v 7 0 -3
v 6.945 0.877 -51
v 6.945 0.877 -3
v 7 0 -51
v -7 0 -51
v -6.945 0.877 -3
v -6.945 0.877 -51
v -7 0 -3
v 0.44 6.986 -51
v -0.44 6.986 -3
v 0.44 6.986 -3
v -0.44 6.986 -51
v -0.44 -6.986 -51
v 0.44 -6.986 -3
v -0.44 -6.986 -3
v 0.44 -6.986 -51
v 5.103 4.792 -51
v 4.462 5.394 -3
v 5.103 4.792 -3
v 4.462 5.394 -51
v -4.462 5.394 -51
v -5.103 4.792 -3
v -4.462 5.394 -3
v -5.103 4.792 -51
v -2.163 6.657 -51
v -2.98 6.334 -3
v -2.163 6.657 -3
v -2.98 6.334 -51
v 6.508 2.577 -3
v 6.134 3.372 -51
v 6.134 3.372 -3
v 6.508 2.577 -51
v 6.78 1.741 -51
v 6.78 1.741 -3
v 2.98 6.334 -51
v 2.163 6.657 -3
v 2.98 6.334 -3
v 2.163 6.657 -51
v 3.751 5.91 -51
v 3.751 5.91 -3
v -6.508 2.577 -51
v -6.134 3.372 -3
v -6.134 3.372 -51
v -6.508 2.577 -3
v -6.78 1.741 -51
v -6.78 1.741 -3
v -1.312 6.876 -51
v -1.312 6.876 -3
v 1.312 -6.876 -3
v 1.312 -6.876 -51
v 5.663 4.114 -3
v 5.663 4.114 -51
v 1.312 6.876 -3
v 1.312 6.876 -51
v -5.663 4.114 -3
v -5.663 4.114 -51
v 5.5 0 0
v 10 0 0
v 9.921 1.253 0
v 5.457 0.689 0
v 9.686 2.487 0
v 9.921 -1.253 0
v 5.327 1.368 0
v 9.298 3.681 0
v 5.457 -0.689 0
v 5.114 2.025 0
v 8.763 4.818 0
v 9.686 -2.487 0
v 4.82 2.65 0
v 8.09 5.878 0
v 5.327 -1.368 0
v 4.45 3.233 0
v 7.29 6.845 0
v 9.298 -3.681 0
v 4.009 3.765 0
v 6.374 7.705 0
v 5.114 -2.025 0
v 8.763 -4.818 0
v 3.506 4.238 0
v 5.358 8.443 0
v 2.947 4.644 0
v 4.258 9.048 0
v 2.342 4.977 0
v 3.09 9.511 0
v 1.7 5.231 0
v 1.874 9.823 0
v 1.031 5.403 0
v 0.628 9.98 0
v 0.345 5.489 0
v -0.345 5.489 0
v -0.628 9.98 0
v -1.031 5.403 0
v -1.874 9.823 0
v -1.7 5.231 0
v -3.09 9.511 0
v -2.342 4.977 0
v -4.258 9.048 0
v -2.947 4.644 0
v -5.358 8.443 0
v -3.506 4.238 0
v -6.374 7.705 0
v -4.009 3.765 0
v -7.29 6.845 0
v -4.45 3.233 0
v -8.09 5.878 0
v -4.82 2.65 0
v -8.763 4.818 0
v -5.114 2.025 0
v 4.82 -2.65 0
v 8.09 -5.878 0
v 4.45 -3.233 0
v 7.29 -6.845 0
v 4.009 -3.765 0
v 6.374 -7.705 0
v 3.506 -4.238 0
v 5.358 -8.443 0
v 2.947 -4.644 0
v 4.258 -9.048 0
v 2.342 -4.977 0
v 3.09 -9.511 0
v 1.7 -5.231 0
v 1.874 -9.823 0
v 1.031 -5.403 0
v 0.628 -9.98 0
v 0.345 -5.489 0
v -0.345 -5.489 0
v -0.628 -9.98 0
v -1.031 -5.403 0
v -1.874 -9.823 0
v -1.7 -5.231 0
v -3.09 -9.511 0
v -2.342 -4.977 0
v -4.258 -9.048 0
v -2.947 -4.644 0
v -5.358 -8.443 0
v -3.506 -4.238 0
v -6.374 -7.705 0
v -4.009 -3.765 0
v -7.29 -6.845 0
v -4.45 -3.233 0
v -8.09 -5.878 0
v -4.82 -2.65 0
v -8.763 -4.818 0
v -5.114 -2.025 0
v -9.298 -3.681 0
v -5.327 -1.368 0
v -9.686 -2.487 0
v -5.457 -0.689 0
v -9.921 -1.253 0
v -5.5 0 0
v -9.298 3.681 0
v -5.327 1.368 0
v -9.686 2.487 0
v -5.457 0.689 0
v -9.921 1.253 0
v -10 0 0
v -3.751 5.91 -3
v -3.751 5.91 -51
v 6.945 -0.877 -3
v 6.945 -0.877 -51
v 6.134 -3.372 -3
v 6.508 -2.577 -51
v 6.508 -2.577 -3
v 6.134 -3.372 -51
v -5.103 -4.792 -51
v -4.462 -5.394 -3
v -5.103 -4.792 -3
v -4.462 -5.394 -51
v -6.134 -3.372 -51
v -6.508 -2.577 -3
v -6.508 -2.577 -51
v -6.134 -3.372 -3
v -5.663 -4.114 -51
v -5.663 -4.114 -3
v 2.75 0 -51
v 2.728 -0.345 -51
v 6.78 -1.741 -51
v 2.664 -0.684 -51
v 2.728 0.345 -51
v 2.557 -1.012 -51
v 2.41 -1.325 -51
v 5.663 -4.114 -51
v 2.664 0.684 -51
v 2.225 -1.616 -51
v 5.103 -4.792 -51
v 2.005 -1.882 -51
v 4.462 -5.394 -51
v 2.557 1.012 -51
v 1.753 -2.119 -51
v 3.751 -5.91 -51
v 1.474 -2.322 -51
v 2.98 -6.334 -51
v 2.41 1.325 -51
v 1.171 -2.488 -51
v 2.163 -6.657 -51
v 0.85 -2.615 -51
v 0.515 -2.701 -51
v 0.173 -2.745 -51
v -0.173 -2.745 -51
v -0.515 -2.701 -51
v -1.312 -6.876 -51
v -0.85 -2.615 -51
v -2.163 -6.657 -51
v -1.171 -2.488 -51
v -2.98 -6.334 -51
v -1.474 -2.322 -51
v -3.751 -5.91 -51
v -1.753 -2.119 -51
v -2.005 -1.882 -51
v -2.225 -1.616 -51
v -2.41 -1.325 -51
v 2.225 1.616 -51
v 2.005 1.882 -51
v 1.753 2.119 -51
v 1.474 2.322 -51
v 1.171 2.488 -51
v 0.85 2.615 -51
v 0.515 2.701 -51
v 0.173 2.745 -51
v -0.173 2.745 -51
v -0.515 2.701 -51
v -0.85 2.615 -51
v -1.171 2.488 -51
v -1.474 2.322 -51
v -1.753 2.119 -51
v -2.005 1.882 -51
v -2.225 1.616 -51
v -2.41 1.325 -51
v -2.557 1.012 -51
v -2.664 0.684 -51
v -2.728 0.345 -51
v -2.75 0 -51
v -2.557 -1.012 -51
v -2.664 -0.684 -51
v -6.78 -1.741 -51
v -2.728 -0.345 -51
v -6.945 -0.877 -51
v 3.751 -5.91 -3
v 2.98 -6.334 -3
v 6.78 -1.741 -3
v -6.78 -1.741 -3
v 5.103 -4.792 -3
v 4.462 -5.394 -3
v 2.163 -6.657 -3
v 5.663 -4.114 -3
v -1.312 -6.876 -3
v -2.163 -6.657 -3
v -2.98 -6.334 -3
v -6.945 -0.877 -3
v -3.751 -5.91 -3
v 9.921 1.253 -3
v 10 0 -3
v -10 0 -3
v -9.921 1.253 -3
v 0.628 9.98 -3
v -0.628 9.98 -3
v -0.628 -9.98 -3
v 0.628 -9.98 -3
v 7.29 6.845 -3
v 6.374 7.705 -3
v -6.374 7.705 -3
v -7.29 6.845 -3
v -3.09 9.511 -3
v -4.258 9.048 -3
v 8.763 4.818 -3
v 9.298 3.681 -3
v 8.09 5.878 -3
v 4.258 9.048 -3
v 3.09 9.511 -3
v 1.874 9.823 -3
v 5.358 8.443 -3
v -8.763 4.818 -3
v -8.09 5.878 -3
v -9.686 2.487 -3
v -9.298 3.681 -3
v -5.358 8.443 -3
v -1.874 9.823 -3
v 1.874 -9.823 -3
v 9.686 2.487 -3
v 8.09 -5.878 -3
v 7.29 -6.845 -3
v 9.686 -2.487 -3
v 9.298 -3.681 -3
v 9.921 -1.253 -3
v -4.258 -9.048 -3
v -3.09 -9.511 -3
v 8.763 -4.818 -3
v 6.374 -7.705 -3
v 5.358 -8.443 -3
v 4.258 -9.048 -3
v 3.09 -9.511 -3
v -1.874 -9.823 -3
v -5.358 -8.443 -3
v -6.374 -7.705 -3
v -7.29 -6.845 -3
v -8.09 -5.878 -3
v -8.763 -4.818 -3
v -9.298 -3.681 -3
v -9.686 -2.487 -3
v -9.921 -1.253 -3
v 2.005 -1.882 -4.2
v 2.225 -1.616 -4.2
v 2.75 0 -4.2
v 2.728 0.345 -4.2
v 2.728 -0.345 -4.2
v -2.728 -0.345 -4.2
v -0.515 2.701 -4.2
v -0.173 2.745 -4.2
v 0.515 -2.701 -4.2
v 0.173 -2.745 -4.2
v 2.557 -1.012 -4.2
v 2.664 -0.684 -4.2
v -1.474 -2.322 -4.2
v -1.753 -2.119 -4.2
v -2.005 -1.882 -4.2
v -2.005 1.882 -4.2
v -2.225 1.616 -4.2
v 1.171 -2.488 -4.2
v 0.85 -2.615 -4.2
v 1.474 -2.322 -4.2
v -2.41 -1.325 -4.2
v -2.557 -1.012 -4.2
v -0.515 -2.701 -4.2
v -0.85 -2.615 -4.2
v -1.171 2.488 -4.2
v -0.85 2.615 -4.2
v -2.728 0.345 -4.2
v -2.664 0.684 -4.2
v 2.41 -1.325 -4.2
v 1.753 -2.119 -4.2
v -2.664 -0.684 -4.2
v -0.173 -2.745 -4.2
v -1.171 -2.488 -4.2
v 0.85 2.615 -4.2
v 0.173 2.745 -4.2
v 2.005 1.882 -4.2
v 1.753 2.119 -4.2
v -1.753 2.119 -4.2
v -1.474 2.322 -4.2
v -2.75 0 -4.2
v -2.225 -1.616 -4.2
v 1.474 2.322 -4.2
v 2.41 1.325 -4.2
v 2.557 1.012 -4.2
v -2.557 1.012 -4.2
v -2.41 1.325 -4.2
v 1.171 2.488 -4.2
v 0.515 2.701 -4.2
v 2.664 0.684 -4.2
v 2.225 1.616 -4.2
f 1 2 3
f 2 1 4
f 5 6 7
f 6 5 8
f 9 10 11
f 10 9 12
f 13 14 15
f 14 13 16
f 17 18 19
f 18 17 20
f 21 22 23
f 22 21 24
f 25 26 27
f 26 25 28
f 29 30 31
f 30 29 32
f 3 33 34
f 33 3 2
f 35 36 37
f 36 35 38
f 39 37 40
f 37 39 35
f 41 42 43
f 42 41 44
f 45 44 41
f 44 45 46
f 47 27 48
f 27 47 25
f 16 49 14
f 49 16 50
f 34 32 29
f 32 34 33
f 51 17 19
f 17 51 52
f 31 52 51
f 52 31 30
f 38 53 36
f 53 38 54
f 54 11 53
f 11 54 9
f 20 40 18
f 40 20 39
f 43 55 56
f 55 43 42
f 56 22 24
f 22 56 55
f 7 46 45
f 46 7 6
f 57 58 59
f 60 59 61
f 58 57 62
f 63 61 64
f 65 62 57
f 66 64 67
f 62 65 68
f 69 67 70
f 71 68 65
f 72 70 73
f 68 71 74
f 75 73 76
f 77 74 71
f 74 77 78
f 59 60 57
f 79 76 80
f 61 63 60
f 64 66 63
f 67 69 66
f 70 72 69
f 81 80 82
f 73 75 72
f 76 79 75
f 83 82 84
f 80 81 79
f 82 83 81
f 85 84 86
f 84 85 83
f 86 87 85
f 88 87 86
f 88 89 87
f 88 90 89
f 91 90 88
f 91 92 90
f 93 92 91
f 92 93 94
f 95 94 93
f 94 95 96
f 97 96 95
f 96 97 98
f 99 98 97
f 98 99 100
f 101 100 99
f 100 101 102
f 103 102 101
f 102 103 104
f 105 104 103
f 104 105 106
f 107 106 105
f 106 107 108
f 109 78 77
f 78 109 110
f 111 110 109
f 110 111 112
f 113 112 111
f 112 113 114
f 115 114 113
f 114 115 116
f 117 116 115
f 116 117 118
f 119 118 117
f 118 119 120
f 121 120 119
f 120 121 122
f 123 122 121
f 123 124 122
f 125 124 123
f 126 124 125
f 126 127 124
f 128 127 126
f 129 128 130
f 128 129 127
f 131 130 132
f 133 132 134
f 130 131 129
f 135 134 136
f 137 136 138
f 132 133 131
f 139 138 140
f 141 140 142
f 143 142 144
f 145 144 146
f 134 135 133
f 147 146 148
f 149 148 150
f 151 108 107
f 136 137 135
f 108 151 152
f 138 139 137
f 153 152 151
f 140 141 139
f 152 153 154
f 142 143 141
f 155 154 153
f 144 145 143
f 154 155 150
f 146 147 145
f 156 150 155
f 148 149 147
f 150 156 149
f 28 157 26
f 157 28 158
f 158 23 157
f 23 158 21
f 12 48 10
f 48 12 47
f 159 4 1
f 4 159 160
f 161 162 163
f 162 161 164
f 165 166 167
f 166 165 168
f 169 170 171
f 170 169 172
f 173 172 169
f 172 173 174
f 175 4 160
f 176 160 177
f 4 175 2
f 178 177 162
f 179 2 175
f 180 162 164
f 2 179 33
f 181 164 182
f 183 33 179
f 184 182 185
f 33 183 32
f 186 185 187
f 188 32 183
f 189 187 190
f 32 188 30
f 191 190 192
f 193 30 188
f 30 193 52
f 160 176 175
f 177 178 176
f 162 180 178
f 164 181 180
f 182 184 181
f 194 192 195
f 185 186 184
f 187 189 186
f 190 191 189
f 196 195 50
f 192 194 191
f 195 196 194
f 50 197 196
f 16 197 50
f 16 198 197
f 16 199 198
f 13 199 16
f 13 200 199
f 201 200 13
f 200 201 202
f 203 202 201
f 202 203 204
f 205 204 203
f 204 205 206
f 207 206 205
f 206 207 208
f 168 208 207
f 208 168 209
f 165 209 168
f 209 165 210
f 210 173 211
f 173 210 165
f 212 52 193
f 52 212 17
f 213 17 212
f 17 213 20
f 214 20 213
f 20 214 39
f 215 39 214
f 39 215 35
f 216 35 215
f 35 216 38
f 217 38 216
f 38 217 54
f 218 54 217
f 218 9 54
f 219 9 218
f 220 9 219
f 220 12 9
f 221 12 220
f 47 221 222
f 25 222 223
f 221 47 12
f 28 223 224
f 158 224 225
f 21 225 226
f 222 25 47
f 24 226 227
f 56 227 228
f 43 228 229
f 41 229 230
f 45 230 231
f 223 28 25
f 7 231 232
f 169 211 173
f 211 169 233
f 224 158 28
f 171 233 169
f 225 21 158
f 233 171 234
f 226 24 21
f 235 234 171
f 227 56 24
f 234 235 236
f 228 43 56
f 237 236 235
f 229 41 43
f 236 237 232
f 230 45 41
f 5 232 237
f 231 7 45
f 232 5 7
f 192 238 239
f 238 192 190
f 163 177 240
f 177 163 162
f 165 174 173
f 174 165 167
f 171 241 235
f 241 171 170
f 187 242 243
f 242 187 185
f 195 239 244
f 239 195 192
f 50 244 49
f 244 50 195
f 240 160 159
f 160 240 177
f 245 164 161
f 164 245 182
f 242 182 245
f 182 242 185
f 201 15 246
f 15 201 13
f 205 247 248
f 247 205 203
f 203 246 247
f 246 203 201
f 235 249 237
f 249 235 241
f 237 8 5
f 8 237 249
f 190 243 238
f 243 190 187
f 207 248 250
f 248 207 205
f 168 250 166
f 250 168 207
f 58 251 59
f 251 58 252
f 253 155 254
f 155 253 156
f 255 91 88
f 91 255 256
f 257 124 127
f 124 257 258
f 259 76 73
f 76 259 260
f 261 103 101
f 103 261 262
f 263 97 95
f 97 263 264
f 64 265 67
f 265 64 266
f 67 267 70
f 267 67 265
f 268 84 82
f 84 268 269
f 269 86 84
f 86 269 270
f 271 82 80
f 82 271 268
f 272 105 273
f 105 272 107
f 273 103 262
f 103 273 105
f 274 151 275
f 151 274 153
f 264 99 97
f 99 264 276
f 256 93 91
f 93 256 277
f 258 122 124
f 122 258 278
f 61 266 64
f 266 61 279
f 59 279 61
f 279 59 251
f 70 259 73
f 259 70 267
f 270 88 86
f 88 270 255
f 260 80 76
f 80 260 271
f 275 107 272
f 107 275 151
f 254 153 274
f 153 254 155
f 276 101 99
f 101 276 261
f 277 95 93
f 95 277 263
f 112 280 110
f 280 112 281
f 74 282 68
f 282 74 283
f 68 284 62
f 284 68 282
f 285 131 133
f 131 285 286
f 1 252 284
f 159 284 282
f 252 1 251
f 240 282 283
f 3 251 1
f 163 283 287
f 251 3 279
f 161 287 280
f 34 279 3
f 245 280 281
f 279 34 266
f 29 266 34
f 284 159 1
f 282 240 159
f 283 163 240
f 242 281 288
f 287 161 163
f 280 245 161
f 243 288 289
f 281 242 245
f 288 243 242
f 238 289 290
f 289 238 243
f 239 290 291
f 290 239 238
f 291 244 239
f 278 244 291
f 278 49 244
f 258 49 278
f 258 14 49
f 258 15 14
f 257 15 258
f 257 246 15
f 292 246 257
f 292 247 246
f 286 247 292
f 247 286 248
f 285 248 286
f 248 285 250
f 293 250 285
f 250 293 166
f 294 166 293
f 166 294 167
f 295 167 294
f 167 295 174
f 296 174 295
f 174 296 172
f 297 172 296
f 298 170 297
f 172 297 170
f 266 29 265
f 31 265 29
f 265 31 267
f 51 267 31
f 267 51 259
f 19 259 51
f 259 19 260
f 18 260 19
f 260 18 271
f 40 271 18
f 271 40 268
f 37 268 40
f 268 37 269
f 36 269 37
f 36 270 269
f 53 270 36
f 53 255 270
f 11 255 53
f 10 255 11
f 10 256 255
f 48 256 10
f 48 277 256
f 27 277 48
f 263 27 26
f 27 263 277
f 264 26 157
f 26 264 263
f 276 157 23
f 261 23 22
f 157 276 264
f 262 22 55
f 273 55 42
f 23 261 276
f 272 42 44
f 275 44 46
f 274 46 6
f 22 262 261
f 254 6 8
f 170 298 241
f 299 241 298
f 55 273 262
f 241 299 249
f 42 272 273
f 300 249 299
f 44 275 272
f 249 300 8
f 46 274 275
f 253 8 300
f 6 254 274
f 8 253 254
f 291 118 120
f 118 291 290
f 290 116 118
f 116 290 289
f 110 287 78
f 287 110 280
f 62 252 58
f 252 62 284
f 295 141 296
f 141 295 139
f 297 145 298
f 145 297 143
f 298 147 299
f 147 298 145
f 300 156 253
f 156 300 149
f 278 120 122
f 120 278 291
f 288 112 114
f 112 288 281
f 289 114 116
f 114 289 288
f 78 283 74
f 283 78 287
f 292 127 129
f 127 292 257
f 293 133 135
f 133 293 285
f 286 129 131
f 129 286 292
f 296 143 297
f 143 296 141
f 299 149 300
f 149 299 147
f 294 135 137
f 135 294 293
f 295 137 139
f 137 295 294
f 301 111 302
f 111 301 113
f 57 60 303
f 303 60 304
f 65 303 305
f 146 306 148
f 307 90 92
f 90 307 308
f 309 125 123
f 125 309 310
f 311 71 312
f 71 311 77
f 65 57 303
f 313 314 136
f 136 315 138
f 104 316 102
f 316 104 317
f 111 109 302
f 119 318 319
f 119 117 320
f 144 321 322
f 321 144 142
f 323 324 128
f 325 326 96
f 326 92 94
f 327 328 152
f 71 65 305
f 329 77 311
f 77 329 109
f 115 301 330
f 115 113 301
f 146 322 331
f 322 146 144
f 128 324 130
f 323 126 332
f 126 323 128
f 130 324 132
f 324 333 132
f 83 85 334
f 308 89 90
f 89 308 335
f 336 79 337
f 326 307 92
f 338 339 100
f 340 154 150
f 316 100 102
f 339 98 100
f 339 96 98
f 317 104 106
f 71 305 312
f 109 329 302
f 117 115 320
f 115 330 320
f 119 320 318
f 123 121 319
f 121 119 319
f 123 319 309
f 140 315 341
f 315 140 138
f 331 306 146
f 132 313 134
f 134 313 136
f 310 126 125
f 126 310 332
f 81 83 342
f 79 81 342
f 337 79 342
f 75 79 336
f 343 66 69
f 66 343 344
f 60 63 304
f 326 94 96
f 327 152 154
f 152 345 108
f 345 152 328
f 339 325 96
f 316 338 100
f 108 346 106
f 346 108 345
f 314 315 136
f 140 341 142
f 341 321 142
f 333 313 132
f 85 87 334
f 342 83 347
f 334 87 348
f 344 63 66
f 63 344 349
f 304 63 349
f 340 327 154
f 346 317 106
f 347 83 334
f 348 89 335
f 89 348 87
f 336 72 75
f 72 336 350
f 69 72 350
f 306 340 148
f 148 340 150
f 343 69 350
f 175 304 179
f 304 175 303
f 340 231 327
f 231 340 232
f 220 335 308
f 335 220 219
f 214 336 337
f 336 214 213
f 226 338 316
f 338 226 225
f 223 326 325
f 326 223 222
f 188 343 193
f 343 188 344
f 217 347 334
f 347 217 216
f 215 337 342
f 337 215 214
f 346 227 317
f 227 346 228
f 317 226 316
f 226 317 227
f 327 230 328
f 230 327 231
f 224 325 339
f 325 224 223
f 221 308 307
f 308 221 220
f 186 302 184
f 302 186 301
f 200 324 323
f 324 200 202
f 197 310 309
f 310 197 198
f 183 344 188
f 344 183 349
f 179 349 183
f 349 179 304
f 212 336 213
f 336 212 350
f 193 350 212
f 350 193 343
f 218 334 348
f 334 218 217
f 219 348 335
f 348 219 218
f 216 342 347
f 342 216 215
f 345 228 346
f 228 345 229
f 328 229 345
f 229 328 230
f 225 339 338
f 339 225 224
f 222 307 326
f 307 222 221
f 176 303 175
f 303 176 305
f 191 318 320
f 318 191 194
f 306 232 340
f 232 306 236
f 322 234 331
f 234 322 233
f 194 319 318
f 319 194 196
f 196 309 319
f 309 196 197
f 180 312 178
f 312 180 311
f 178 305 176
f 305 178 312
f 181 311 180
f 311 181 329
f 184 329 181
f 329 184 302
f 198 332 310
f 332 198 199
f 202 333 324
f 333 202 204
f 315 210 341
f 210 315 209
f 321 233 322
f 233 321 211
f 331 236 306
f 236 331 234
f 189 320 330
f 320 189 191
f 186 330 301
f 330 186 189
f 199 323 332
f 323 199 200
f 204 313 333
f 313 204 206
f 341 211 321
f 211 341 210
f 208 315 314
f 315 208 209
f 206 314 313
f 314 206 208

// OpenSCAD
$fn = 50;


difference() {
	union() {
		translate(v = [0, 0, -51.0000000000]) {
			cylinder(h = 51, r = 7.0000000000);
		}
		translate(v = [0, 0, -3.0000000000]) {
			cylinder(h = 3, r = 10.0000000000);
		}
	}
	union() {
		translate(v = [0, 0, 0]) {
			rotate(a = [0, 0, 0]) {
				difference() {
					union() {
						#translate(v = [0, 0, -51.0000000000]) {
							cylinder(h = 51, r = 2.2500000000);
						}
						#translate(v = [0, 0, -4.2000000000]) {
							cylinder(h = 4.2000000000, r = 7.0000000000, r1 = 2.7500000000, r2 = 5.5000000000);
						}
						#translate(v = [0, 0, -51.0000000000]) {
							cylinder(h = 51, r = 2.7500000000);
						}
						#translate(v = [0, 0, -51.0000000000]) {
							cylinder(h = 51, r = 2.2500000000);
						}
					}
					union();
				}
			}
		}
	}
}
